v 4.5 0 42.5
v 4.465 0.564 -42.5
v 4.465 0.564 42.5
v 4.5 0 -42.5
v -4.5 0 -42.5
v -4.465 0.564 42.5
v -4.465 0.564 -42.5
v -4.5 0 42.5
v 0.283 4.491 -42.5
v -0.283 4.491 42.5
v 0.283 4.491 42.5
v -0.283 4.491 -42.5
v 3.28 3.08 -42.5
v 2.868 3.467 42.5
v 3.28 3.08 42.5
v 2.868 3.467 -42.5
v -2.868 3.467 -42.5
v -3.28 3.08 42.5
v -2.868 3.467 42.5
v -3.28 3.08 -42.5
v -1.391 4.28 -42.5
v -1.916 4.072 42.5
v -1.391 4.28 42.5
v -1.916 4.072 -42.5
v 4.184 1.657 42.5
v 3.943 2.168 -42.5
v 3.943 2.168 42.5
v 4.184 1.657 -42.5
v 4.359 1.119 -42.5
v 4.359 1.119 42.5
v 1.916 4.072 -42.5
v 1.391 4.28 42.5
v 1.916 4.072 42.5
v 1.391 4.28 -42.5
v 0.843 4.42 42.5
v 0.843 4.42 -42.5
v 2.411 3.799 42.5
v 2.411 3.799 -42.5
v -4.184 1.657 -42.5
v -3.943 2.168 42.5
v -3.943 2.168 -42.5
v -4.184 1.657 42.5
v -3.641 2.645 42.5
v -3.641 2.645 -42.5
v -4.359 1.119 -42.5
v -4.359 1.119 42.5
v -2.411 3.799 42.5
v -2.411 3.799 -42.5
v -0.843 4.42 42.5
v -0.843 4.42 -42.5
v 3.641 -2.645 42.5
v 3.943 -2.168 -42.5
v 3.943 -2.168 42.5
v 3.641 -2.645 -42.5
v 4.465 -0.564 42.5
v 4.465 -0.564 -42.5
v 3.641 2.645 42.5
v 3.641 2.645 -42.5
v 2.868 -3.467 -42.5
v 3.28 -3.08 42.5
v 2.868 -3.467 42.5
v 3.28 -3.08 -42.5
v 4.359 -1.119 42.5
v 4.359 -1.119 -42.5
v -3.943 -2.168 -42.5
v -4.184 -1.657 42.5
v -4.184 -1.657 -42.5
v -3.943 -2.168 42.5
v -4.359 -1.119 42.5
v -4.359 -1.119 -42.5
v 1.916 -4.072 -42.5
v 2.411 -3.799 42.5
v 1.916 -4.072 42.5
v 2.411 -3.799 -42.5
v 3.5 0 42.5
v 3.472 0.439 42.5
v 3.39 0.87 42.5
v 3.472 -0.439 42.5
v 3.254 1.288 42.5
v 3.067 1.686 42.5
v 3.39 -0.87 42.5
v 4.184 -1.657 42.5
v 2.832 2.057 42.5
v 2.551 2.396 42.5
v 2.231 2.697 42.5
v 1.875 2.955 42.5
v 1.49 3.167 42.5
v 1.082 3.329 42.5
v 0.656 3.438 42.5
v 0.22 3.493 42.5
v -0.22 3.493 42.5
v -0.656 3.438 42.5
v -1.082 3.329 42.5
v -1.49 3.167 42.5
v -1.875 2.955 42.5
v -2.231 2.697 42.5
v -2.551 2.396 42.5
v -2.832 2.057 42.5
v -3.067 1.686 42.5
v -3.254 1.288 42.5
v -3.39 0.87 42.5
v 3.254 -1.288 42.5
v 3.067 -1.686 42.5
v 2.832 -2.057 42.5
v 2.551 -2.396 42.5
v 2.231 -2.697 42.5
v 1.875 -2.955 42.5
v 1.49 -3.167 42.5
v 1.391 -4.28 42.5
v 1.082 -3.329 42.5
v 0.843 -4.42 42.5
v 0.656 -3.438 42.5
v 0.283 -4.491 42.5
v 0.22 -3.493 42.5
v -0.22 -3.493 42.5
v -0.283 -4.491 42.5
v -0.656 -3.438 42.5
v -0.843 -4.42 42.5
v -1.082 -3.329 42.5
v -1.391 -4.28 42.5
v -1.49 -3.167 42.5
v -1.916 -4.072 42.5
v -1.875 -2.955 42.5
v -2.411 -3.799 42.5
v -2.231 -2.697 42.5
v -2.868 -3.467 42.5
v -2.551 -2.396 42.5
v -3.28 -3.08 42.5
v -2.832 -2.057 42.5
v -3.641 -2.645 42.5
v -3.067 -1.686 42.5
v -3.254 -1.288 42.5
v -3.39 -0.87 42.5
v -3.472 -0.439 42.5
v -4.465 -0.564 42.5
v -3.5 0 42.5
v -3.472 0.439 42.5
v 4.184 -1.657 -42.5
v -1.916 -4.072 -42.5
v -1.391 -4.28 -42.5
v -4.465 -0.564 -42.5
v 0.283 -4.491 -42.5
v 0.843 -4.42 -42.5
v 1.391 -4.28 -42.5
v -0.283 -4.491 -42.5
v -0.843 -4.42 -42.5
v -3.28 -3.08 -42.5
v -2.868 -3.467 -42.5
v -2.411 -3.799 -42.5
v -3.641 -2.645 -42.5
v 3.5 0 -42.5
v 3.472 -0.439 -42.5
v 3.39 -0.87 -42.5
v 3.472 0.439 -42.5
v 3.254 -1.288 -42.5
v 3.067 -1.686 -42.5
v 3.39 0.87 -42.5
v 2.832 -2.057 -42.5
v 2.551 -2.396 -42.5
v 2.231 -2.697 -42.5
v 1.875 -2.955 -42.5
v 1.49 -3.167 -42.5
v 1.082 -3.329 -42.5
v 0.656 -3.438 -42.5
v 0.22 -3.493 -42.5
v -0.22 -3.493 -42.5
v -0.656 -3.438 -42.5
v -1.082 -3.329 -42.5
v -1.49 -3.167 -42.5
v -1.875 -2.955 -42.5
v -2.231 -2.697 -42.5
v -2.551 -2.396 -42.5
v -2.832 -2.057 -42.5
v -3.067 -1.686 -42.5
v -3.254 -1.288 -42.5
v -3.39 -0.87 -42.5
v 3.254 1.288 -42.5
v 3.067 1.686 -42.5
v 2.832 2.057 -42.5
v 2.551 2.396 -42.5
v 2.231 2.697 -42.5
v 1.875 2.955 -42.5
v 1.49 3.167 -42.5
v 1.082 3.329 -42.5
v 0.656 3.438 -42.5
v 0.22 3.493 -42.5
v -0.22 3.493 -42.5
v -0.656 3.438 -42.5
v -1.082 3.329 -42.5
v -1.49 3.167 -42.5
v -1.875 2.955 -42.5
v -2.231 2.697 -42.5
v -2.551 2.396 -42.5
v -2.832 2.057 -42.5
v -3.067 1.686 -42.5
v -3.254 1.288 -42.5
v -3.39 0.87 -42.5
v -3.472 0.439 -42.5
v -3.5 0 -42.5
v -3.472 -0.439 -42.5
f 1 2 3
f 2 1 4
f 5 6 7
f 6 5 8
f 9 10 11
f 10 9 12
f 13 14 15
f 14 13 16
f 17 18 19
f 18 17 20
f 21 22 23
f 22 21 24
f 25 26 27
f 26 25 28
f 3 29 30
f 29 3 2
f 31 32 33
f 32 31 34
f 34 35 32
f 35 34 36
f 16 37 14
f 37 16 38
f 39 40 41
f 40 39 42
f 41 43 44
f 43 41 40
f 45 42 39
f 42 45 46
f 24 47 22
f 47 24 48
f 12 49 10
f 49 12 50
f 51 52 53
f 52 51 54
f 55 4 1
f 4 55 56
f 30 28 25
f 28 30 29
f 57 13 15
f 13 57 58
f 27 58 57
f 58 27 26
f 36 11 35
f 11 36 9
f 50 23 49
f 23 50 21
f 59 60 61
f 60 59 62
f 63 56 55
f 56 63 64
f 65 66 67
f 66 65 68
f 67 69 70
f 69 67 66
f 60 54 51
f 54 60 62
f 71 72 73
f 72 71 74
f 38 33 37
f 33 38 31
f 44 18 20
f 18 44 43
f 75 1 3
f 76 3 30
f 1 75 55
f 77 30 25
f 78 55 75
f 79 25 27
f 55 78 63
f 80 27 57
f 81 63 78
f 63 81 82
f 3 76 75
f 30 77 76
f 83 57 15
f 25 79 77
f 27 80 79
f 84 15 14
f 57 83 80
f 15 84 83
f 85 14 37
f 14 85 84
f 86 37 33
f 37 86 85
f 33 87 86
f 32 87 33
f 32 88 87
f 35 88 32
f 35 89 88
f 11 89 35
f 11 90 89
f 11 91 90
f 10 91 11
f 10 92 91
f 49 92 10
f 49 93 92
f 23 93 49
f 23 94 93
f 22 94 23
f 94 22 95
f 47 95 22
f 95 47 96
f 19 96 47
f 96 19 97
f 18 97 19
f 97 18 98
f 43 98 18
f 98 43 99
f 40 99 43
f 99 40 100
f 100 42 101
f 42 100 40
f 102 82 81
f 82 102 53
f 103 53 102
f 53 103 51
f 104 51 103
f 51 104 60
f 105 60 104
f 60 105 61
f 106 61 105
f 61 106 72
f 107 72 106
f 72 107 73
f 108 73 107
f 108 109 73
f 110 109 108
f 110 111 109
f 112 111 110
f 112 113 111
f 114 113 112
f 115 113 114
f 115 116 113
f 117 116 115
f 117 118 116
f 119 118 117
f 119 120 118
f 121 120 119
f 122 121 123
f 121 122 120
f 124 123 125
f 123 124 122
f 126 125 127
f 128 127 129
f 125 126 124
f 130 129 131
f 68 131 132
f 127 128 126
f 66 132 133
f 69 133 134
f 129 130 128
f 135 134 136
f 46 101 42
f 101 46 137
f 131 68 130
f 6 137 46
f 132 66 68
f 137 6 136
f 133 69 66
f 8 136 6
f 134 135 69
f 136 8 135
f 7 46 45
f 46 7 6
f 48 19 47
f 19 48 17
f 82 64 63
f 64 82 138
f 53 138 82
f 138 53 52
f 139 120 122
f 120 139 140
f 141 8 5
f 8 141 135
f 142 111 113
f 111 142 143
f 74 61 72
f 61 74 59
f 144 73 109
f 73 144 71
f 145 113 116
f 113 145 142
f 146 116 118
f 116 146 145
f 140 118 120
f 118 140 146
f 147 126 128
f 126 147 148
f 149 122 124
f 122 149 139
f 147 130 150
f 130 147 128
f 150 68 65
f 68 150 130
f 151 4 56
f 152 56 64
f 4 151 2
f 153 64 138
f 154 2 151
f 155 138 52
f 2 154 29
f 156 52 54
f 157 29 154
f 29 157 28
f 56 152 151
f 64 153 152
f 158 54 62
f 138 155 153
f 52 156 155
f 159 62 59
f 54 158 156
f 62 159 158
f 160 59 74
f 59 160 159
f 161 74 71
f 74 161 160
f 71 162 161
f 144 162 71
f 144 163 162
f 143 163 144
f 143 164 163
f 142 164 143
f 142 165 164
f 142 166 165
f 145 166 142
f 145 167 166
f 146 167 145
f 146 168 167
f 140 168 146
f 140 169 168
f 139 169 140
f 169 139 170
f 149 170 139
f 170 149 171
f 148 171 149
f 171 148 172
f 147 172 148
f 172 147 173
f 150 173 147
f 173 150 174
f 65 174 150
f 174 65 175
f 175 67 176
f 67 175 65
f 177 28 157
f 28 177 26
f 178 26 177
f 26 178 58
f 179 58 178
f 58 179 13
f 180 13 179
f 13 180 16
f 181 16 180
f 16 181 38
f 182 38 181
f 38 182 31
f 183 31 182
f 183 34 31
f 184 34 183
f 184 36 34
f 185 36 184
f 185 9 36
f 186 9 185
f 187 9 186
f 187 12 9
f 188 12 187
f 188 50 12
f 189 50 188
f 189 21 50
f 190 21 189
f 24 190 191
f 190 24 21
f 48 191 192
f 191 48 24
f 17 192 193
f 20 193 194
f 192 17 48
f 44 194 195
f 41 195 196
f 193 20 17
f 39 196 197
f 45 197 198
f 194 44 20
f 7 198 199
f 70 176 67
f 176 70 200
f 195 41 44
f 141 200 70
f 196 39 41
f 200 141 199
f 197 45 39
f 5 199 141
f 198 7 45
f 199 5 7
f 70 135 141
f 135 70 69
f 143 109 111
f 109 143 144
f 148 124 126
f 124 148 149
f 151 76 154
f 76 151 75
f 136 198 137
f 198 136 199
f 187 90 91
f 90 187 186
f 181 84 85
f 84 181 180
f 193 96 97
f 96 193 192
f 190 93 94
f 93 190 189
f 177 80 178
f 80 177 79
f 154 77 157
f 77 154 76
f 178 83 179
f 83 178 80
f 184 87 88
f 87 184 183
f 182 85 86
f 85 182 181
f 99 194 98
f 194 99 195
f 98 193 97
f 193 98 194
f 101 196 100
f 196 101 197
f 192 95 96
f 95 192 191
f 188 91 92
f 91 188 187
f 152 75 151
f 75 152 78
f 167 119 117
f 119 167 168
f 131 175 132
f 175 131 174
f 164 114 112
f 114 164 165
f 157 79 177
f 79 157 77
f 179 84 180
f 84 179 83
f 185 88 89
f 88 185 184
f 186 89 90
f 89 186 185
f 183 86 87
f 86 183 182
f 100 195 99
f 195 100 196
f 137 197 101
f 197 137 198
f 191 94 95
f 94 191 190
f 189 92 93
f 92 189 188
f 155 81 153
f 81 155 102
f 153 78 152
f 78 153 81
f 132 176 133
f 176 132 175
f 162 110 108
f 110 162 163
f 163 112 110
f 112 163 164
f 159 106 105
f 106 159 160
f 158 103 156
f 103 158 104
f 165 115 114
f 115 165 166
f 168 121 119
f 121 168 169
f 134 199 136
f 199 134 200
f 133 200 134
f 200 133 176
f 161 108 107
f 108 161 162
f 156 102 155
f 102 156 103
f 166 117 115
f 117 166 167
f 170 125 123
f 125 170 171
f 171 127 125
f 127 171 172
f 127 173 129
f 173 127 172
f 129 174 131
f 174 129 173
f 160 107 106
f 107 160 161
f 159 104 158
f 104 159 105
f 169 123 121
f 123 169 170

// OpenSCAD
$fn = 50;


difference() {
	union() {
		translate(v = [0, 0, -42.5000000000]) {
			cylinder(h = 85, r = 4.5000000000);
		}
	}
	union() {
		translate(v = [0, 0, -100.0000000000]) {
			cylinder(h = 200, r = 3.5000000000);
		}
	}
}
